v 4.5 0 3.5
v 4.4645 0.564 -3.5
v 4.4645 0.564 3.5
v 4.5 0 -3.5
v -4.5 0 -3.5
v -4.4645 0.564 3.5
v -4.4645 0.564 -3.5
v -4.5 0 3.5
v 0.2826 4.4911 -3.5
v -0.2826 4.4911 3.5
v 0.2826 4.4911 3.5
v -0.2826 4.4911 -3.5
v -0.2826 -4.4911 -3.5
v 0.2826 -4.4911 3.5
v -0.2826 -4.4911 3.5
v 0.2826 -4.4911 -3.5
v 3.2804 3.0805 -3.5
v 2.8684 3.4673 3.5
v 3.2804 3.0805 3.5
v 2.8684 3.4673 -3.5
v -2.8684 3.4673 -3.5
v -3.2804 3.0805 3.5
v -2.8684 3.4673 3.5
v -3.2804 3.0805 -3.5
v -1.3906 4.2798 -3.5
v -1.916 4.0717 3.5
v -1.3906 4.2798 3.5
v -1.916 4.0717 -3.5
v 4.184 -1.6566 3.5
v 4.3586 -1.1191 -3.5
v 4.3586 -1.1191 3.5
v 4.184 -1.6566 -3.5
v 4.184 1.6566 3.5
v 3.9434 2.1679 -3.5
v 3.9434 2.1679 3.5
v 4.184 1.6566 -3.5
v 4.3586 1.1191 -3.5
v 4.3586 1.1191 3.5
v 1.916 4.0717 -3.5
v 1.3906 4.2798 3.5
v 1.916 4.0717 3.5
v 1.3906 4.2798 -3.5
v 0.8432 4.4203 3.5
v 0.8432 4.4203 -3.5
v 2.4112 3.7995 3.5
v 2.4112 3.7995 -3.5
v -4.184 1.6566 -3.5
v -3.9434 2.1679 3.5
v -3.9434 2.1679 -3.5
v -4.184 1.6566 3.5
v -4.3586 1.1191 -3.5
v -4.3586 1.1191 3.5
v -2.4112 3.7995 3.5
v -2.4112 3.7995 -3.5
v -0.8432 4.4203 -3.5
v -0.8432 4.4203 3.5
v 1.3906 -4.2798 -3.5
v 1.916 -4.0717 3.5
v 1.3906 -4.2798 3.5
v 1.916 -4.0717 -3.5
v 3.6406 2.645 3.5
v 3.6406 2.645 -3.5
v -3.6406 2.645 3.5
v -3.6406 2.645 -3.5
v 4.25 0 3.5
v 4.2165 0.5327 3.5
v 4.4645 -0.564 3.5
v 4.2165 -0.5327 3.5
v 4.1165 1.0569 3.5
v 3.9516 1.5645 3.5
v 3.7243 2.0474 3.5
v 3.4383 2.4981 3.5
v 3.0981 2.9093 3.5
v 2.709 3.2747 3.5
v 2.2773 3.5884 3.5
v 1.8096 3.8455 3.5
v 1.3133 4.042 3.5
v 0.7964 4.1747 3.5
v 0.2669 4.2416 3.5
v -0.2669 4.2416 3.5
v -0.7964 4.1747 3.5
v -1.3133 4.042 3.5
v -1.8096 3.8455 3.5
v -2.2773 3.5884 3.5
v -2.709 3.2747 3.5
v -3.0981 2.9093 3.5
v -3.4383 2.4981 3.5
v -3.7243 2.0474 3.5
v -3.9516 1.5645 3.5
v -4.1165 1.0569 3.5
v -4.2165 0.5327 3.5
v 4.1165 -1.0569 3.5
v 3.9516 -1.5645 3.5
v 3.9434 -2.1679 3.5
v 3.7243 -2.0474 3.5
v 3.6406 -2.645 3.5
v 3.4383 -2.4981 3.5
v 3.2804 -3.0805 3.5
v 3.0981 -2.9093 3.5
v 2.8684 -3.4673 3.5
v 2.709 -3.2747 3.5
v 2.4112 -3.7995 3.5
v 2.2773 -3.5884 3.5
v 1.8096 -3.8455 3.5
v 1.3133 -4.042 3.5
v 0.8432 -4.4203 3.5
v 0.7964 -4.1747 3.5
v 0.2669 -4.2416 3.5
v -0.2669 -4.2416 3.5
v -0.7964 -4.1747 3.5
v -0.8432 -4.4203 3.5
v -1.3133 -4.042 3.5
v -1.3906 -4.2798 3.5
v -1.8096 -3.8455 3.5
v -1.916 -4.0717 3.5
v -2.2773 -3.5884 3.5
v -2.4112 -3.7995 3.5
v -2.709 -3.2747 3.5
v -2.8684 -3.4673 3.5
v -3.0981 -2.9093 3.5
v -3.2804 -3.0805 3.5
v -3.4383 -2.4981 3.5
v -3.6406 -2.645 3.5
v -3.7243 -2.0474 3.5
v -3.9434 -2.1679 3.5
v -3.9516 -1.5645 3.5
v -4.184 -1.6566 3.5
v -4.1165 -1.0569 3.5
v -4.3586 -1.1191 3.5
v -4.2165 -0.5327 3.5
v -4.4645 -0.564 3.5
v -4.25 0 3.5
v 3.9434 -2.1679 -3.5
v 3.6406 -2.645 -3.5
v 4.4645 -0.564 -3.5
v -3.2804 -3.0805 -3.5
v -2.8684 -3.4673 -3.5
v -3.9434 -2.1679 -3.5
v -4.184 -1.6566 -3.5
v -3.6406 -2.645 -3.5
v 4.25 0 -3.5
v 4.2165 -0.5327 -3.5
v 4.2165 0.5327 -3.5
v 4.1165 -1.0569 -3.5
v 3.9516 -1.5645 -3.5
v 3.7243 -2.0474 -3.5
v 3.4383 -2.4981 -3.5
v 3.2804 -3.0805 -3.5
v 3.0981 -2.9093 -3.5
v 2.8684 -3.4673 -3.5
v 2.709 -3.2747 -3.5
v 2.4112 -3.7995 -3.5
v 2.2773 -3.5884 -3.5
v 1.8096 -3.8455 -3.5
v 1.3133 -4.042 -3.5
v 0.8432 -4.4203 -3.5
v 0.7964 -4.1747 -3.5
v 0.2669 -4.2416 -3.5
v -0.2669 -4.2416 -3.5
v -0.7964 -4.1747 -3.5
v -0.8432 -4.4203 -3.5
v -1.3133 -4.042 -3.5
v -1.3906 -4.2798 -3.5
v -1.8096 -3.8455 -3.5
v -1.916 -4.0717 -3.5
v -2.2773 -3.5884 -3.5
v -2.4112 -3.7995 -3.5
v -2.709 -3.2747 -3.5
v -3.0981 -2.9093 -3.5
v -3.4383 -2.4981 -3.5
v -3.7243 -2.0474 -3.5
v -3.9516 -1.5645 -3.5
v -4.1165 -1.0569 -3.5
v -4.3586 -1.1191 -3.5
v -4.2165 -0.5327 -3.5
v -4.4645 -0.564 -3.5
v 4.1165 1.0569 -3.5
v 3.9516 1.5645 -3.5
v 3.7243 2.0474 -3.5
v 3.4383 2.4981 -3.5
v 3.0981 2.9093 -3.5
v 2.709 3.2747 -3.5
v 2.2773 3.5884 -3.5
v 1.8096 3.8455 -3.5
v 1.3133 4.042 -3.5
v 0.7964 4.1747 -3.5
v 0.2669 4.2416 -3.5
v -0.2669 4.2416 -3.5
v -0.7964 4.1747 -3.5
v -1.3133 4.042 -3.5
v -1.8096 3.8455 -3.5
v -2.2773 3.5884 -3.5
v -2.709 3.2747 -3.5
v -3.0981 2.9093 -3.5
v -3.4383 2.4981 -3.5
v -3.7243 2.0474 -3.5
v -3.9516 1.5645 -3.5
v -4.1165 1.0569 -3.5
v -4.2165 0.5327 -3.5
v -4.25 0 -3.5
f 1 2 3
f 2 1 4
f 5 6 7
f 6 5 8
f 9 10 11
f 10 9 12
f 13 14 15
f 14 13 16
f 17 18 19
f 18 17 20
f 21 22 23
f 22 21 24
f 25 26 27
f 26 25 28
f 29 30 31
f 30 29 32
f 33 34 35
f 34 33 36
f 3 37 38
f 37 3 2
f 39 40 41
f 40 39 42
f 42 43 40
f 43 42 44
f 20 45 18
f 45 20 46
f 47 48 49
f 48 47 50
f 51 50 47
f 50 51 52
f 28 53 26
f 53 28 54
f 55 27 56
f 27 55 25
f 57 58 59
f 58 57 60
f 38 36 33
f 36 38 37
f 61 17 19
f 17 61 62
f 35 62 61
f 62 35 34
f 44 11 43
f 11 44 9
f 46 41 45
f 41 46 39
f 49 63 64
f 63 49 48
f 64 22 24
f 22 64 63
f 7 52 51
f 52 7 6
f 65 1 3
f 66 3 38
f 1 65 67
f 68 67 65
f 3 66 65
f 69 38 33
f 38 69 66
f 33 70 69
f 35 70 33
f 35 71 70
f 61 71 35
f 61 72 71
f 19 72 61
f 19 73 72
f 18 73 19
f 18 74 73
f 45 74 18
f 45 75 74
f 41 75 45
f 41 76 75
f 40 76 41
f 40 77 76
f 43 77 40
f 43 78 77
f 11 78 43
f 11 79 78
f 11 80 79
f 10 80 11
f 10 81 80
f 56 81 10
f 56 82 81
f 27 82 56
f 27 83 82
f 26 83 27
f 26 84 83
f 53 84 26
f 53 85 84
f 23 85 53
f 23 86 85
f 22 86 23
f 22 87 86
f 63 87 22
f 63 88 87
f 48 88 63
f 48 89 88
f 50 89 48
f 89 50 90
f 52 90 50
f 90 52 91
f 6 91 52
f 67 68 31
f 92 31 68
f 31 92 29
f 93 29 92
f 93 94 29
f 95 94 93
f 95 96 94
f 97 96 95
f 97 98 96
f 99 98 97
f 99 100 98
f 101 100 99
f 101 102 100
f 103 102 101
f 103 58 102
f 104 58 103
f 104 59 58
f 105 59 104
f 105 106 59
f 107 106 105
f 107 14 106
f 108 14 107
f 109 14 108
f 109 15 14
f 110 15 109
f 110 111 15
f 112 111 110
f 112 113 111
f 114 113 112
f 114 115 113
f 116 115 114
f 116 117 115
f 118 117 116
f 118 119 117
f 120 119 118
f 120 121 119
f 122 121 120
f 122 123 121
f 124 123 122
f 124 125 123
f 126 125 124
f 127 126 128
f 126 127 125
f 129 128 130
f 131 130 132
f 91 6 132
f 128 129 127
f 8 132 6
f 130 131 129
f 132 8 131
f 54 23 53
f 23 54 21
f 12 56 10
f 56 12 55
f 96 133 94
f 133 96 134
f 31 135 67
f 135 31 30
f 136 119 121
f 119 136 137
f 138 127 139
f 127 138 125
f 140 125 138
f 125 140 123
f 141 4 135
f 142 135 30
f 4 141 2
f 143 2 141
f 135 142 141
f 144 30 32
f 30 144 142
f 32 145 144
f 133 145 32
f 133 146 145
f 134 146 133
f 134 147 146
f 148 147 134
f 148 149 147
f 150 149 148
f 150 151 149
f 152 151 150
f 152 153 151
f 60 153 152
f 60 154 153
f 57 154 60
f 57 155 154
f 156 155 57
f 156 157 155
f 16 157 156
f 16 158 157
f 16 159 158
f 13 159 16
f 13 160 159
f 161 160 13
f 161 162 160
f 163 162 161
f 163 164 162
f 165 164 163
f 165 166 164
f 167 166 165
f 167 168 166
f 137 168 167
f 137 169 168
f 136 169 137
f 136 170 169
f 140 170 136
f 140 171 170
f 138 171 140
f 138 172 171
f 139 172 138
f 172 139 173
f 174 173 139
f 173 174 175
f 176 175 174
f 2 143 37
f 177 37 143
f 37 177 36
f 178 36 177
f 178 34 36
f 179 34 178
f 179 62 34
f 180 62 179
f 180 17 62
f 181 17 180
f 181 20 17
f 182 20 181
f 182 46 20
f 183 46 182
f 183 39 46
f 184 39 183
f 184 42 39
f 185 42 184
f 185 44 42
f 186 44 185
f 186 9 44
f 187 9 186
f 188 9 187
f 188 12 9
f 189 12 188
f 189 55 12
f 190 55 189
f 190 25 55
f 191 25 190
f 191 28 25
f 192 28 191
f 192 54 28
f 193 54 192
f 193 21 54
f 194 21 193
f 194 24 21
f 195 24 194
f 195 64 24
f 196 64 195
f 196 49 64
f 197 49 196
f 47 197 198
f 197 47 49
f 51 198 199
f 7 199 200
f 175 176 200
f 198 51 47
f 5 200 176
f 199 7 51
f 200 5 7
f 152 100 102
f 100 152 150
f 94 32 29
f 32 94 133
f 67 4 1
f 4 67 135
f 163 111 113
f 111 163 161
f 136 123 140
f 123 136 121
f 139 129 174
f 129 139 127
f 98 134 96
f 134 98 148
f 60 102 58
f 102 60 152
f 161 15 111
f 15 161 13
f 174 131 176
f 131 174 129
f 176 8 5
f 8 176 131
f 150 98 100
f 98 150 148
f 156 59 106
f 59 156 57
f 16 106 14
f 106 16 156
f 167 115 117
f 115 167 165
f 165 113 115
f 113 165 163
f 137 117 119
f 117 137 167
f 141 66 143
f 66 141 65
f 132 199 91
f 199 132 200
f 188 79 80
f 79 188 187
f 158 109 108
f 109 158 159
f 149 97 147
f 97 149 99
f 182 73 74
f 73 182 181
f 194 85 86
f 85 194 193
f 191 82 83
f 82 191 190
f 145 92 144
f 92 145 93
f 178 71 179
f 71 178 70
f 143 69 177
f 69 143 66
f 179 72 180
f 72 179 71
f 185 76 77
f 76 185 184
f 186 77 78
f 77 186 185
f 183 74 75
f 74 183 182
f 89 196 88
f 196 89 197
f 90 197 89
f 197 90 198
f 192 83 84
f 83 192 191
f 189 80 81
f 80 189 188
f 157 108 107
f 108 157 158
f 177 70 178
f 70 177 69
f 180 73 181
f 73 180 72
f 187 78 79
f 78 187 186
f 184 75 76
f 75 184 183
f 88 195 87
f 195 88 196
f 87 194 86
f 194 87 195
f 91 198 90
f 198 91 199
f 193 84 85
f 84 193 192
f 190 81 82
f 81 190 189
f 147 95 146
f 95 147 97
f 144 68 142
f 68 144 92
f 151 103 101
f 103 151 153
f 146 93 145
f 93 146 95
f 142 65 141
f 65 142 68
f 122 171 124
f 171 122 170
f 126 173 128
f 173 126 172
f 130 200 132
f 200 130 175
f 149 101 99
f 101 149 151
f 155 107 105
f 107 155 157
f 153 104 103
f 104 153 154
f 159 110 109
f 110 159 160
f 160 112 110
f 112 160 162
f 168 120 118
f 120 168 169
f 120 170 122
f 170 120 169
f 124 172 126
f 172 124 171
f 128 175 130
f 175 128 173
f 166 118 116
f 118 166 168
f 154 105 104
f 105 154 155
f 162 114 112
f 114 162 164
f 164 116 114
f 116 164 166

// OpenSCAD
$fn = 50;


difference() {
	union() {
		translate(v = [0, 0, -3.5000000000]) {
			cylinder(h = 7, r = 4.5000000000);
		}
	}
	union() {
		translate(v = [0, 0, -100.0000000000]) {
			cylinder(h = 200, r = 4.2500000000);
		}
	}
}
